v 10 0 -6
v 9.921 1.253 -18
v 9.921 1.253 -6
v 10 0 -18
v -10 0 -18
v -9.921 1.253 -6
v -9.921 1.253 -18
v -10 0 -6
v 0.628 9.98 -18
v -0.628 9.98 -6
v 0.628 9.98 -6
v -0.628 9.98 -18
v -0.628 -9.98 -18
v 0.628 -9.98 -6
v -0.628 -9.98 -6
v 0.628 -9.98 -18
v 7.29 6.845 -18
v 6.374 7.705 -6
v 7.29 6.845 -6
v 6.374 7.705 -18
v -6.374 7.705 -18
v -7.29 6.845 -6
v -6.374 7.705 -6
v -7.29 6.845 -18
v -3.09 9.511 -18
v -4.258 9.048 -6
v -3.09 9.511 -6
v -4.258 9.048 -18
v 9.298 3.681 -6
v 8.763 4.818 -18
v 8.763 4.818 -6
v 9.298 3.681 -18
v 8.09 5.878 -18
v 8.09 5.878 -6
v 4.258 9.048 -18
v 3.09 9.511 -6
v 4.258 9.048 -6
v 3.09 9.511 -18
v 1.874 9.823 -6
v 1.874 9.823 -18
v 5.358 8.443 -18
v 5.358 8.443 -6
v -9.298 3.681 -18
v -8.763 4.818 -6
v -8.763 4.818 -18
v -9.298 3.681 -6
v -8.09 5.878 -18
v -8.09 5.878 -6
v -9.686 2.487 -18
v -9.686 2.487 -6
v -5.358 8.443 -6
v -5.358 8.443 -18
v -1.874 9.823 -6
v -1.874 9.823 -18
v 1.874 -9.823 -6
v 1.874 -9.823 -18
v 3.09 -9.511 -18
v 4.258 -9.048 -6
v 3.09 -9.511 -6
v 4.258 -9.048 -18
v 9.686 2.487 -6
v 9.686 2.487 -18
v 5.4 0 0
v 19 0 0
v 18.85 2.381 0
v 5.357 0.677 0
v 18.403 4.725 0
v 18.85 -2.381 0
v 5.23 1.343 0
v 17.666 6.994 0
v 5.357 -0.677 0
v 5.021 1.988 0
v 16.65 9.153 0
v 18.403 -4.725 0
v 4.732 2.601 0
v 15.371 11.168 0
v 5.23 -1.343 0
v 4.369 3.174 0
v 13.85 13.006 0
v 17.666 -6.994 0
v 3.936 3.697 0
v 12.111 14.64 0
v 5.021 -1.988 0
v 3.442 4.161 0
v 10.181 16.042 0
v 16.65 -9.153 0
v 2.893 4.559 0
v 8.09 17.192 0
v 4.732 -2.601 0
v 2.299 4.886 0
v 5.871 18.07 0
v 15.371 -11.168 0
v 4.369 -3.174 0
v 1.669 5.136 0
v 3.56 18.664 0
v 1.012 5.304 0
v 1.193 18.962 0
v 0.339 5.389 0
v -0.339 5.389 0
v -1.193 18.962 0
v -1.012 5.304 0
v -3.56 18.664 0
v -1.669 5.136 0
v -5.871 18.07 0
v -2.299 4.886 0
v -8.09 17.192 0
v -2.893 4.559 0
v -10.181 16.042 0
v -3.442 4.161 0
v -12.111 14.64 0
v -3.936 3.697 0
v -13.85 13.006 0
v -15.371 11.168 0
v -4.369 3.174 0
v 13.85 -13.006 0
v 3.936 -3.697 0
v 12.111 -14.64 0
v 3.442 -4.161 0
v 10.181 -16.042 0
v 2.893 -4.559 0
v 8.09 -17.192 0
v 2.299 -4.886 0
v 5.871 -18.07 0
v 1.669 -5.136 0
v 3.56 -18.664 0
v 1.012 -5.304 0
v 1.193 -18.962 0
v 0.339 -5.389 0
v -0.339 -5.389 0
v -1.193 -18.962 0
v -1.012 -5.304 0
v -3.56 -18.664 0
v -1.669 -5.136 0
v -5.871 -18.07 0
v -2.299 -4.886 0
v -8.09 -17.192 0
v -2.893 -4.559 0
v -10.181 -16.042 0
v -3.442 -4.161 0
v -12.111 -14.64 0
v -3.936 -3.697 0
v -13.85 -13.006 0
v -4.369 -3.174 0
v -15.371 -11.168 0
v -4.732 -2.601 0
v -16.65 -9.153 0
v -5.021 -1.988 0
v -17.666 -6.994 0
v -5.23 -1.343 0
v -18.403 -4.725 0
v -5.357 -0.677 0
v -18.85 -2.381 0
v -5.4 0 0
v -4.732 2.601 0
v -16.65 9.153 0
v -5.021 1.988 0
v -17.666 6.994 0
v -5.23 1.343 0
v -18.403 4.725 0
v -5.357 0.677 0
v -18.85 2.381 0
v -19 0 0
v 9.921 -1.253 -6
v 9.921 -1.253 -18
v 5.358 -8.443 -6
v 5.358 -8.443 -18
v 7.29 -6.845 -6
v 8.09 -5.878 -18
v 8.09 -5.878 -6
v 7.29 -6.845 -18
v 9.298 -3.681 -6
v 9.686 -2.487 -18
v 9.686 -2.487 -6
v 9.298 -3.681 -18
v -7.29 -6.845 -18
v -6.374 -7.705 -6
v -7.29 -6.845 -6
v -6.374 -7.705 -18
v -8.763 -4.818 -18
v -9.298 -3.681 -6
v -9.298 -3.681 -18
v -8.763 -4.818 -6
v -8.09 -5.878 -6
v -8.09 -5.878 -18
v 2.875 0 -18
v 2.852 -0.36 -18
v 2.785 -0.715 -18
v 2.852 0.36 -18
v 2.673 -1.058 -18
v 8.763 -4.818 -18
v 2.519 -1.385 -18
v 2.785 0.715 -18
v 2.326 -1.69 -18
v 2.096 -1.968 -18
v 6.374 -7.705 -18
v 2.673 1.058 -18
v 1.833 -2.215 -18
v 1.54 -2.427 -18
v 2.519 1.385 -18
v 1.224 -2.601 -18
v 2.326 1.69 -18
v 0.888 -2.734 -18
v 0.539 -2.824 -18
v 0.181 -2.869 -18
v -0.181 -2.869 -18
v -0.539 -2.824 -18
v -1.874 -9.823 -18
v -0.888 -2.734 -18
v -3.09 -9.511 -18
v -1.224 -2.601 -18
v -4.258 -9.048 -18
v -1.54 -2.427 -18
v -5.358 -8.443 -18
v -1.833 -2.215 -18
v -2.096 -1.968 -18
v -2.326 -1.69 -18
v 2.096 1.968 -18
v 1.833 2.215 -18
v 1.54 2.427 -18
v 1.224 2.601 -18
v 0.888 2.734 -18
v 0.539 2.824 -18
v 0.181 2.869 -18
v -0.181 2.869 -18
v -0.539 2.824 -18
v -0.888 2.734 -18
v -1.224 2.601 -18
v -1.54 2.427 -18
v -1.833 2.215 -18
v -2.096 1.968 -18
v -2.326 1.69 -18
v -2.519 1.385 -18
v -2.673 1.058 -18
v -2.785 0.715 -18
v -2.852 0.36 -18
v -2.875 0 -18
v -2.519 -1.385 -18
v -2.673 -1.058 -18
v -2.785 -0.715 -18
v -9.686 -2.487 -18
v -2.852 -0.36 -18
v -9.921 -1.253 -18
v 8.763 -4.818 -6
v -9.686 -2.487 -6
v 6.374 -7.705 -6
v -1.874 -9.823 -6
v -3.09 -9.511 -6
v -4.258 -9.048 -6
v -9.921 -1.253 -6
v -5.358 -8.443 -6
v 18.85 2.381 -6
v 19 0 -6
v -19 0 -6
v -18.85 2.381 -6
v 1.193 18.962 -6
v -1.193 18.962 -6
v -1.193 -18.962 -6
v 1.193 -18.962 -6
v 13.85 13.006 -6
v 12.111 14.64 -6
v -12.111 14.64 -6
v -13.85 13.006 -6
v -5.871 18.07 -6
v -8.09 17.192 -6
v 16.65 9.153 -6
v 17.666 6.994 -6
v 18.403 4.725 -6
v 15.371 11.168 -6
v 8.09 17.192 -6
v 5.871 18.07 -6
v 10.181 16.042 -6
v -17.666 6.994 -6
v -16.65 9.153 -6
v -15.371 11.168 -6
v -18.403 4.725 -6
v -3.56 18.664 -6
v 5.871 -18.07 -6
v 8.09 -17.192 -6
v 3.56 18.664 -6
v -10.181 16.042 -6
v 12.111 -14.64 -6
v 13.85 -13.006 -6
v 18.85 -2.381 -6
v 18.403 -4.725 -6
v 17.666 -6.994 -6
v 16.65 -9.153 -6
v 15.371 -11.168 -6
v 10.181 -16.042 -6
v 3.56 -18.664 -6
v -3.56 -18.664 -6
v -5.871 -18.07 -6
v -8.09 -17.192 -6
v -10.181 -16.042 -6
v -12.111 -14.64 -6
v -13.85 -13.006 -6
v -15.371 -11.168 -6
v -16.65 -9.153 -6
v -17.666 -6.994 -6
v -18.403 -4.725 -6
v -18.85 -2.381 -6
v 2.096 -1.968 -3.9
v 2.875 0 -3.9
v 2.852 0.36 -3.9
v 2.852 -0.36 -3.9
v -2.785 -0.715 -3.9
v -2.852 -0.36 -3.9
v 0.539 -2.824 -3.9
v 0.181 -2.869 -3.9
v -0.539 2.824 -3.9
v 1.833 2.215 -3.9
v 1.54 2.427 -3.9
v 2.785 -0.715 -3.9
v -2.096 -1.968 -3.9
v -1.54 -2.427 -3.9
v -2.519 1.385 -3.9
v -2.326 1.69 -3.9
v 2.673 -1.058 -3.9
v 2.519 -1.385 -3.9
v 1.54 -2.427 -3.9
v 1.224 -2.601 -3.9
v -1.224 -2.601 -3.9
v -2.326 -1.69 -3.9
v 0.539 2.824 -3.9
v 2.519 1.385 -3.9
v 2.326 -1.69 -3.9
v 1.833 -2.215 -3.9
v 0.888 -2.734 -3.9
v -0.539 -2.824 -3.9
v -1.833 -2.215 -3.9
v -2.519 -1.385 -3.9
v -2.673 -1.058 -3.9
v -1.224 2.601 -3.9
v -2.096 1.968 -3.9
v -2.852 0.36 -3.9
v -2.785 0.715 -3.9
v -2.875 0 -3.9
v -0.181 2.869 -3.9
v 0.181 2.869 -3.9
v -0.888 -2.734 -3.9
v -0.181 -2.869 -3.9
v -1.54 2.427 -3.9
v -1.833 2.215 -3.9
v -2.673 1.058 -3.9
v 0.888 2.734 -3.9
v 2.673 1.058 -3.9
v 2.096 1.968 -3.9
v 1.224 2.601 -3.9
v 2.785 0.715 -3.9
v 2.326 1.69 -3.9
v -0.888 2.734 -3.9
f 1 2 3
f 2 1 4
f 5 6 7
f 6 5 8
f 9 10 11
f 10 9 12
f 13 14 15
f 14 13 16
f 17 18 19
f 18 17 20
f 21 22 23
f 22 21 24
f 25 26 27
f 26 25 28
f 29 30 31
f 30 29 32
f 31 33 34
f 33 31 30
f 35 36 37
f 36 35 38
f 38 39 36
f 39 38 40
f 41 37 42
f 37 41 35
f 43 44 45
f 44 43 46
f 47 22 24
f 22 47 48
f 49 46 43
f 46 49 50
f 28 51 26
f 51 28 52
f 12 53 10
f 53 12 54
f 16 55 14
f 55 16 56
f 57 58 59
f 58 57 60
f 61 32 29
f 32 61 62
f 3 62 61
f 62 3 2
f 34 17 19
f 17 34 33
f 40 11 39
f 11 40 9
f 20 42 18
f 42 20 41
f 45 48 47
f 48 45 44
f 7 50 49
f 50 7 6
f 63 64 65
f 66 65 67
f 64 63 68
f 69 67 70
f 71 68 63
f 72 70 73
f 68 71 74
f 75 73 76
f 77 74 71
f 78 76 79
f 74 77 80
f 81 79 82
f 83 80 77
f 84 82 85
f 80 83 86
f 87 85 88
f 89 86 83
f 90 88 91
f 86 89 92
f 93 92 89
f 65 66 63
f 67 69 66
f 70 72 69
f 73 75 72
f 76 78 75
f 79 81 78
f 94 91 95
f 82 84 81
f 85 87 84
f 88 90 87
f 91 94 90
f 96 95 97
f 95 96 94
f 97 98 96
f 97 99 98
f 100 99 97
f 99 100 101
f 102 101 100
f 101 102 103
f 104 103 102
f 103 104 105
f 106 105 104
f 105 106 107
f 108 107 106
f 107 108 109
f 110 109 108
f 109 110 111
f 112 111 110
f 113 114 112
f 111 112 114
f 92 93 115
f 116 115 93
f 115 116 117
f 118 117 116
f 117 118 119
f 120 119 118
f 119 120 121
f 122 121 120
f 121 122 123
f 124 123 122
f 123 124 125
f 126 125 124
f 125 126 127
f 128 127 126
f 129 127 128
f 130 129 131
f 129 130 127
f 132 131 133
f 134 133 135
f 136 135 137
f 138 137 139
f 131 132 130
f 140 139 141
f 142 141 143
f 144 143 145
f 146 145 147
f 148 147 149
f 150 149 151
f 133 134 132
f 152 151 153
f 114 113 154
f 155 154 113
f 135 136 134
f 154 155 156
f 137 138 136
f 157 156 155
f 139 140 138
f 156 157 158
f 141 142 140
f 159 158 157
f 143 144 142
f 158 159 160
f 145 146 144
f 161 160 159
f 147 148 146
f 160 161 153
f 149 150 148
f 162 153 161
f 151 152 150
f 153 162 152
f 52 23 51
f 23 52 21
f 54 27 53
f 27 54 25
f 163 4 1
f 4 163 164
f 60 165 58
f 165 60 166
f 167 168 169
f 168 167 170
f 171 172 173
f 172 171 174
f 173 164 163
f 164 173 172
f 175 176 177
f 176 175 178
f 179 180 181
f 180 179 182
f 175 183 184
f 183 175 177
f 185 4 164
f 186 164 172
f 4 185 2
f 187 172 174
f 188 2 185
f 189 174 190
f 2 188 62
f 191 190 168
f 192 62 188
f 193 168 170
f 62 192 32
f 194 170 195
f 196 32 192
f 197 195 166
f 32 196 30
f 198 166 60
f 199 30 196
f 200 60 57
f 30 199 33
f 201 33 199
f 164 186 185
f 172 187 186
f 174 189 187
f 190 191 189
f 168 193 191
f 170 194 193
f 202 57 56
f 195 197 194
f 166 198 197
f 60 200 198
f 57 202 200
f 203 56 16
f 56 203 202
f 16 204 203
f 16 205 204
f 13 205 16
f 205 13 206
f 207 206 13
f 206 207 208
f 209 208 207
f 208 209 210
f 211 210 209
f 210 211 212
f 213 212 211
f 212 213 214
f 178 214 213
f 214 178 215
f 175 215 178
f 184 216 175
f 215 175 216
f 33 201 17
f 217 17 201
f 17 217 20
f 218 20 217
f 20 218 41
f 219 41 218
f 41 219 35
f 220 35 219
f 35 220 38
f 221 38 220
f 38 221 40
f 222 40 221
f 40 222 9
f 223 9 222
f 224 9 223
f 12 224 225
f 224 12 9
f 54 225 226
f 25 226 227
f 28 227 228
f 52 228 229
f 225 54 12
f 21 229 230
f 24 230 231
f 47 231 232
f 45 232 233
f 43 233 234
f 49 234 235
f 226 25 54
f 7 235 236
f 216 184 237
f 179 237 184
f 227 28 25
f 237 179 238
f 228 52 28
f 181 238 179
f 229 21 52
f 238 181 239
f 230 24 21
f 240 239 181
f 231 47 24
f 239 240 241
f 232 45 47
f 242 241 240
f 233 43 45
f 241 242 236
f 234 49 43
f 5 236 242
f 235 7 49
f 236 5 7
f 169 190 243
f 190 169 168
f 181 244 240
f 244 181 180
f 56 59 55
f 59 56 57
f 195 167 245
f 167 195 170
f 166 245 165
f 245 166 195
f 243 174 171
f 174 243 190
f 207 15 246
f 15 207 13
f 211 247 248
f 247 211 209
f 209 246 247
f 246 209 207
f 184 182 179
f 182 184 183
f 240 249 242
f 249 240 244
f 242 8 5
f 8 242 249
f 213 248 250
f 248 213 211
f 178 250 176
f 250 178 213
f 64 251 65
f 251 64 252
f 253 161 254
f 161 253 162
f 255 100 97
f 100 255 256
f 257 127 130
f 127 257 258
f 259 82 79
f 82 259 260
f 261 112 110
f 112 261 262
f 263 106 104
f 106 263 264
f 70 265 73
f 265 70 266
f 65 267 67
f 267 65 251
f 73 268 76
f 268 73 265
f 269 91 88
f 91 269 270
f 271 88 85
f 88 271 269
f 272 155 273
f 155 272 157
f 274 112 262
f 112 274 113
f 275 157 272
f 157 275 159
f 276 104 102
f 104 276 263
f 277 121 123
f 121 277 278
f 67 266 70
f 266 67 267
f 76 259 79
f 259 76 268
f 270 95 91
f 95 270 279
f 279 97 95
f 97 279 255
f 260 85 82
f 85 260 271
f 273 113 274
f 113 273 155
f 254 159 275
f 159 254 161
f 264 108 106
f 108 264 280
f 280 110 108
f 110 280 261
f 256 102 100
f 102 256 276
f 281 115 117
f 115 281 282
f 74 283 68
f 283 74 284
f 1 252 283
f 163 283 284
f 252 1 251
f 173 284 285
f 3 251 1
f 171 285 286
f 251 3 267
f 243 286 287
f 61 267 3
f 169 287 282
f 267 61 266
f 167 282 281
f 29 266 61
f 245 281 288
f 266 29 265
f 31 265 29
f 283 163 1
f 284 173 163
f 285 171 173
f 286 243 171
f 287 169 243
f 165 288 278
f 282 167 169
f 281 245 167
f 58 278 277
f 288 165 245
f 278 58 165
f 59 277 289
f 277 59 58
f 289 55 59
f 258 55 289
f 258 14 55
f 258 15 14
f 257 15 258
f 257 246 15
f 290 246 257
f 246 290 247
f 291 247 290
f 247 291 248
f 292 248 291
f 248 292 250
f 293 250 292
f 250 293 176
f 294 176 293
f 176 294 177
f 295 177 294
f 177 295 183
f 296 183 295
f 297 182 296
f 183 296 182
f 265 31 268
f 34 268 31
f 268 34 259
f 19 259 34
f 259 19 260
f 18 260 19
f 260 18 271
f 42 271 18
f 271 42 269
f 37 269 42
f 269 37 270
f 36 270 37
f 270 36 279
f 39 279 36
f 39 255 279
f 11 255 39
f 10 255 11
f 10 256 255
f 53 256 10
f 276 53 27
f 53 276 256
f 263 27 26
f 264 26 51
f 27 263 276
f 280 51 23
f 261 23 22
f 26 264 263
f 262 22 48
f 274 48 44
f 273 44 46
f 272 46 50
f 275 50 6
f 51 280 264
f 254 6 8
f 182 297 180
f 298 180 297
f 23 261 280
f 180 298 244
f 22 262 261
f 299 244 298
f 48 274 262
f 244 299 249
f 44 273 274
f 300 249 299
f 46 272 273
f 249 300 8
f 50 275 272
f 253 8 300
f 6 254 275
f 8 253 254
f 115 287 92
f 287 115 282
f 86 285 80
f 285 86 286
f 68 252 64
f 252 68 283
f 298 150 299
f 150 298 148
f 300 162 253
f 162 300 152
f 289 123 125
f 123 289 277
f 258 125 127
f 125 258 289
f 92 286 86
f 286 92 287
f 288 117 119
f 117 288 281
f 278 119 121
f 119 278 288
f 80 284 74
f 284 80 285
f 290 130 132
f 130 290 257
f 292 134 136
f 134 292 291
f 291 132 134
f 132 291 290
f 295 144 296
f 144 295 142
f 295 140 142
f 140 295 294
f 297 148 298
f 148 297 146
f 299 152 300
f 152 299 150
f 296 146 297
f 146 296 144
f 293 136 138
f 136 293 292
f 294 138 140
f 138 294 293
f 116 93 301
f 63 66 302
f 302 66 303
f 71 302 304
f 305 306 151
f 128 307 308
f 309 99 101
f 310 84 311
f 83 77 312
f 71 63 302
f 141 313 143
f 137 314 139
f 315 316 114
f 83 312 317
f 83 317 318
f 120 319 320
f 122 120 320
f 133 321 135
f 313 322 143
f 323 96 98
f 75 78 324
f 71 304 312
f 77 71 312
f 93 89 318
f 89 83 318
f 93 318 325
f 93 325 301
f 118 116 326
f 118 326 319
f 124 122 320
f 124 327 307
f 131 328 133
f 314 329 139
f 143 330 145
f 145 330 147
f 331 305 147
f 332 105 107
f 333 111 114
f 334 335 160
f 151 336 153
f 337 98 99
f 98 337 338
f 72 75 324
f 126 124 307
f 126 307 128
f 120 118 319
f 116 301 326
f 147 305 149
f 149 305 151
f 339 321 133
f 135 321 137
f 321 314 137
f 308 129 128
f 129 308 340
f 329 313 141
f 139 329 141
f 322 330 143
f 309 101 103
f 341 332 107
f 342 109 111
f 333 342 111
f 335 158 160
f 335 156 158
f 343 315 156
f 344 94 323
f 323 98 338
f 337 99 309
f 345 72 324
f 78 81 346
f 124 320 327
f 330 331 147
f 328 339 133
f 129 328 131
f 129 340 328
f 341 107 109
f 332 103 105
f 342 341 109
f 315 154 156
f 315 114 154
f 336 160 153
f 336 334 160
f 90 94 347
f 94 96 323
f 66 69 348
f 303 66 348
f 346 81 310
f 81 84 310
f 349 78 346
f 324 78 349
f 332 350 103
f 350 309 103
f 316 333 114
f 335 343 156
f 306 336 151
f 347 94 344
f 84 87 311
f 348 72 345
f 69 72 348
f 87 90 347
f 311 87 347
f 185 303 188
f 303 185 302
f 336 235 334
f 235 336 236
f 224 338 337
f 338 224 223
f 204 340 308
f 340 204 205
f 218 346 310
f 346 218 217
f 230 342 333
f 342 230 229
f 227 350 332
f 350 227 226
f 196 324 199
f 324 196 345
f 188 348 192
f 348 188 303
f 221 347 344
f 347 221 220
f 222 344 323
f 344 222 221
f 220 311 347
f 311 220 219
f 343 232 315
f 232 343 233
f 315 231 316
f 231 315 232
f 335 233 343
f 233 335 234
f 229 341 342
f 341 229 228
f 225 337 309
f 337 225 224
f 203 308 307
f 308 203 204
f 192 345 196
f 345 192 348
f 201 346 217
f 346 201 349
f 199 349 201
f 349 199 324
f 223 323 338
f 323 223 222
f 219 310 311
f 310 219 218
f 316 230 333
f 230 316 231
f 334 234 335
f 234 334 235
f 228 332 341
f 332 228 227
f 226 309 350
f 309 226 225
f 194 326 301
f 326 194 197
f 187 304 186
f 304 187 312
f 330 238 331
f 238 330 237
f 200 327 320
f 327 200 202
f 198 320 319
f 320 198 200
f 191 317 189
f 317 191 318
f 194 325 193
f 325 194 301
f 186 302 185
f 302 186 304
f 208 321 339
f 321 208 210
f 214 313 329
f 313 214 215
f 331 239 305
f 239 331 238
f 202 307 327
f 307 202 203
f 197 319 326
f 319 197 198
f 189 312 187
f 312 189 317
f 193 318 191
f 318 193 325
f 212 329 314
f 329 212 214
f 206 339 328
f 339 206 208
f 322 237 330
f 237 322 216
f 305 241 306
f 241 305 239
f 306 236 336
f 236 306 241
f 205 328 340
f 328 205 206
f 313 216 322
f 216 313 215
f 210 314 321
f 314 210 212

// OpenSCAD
$fn = 50;


difference() {
	union() {
		translate(v = [0, 0, -18.0000000000]) {
			cylinder(h = 18, r = 10.0000000000);
		}
		translate(v = [0, 0, -6.0000000000]) {
			cylinder(h = 6, r = 19.0000000000);
		}
	}
	union() {
		translate(v = [0, 0, 0]) {
			rotate(a = [0, 0, 0]) {
				difference() {
					union() {
						#translate(v = [0, 0, -18.0000000000]) {
							cylinder(h = 18, r = 2.6000000000);
						}
						#translate(v = [0, 0, -3.9000000000]) {
							cylinder(h = 3.9000000000, r1 = 2.8750000000, r2 = 5.4000000000);
						}
						#translate(v = [0, 0, -18.0000000000]) {
							cylinder(h = 18, r = 2.8750000000);
						}
						#translate(v = [0, 0, -18.0000000000]) {
							cylinder(h = 18, r = 2.6000000000);
						}
					}
					union();
				}
			}
		}
	}
}
